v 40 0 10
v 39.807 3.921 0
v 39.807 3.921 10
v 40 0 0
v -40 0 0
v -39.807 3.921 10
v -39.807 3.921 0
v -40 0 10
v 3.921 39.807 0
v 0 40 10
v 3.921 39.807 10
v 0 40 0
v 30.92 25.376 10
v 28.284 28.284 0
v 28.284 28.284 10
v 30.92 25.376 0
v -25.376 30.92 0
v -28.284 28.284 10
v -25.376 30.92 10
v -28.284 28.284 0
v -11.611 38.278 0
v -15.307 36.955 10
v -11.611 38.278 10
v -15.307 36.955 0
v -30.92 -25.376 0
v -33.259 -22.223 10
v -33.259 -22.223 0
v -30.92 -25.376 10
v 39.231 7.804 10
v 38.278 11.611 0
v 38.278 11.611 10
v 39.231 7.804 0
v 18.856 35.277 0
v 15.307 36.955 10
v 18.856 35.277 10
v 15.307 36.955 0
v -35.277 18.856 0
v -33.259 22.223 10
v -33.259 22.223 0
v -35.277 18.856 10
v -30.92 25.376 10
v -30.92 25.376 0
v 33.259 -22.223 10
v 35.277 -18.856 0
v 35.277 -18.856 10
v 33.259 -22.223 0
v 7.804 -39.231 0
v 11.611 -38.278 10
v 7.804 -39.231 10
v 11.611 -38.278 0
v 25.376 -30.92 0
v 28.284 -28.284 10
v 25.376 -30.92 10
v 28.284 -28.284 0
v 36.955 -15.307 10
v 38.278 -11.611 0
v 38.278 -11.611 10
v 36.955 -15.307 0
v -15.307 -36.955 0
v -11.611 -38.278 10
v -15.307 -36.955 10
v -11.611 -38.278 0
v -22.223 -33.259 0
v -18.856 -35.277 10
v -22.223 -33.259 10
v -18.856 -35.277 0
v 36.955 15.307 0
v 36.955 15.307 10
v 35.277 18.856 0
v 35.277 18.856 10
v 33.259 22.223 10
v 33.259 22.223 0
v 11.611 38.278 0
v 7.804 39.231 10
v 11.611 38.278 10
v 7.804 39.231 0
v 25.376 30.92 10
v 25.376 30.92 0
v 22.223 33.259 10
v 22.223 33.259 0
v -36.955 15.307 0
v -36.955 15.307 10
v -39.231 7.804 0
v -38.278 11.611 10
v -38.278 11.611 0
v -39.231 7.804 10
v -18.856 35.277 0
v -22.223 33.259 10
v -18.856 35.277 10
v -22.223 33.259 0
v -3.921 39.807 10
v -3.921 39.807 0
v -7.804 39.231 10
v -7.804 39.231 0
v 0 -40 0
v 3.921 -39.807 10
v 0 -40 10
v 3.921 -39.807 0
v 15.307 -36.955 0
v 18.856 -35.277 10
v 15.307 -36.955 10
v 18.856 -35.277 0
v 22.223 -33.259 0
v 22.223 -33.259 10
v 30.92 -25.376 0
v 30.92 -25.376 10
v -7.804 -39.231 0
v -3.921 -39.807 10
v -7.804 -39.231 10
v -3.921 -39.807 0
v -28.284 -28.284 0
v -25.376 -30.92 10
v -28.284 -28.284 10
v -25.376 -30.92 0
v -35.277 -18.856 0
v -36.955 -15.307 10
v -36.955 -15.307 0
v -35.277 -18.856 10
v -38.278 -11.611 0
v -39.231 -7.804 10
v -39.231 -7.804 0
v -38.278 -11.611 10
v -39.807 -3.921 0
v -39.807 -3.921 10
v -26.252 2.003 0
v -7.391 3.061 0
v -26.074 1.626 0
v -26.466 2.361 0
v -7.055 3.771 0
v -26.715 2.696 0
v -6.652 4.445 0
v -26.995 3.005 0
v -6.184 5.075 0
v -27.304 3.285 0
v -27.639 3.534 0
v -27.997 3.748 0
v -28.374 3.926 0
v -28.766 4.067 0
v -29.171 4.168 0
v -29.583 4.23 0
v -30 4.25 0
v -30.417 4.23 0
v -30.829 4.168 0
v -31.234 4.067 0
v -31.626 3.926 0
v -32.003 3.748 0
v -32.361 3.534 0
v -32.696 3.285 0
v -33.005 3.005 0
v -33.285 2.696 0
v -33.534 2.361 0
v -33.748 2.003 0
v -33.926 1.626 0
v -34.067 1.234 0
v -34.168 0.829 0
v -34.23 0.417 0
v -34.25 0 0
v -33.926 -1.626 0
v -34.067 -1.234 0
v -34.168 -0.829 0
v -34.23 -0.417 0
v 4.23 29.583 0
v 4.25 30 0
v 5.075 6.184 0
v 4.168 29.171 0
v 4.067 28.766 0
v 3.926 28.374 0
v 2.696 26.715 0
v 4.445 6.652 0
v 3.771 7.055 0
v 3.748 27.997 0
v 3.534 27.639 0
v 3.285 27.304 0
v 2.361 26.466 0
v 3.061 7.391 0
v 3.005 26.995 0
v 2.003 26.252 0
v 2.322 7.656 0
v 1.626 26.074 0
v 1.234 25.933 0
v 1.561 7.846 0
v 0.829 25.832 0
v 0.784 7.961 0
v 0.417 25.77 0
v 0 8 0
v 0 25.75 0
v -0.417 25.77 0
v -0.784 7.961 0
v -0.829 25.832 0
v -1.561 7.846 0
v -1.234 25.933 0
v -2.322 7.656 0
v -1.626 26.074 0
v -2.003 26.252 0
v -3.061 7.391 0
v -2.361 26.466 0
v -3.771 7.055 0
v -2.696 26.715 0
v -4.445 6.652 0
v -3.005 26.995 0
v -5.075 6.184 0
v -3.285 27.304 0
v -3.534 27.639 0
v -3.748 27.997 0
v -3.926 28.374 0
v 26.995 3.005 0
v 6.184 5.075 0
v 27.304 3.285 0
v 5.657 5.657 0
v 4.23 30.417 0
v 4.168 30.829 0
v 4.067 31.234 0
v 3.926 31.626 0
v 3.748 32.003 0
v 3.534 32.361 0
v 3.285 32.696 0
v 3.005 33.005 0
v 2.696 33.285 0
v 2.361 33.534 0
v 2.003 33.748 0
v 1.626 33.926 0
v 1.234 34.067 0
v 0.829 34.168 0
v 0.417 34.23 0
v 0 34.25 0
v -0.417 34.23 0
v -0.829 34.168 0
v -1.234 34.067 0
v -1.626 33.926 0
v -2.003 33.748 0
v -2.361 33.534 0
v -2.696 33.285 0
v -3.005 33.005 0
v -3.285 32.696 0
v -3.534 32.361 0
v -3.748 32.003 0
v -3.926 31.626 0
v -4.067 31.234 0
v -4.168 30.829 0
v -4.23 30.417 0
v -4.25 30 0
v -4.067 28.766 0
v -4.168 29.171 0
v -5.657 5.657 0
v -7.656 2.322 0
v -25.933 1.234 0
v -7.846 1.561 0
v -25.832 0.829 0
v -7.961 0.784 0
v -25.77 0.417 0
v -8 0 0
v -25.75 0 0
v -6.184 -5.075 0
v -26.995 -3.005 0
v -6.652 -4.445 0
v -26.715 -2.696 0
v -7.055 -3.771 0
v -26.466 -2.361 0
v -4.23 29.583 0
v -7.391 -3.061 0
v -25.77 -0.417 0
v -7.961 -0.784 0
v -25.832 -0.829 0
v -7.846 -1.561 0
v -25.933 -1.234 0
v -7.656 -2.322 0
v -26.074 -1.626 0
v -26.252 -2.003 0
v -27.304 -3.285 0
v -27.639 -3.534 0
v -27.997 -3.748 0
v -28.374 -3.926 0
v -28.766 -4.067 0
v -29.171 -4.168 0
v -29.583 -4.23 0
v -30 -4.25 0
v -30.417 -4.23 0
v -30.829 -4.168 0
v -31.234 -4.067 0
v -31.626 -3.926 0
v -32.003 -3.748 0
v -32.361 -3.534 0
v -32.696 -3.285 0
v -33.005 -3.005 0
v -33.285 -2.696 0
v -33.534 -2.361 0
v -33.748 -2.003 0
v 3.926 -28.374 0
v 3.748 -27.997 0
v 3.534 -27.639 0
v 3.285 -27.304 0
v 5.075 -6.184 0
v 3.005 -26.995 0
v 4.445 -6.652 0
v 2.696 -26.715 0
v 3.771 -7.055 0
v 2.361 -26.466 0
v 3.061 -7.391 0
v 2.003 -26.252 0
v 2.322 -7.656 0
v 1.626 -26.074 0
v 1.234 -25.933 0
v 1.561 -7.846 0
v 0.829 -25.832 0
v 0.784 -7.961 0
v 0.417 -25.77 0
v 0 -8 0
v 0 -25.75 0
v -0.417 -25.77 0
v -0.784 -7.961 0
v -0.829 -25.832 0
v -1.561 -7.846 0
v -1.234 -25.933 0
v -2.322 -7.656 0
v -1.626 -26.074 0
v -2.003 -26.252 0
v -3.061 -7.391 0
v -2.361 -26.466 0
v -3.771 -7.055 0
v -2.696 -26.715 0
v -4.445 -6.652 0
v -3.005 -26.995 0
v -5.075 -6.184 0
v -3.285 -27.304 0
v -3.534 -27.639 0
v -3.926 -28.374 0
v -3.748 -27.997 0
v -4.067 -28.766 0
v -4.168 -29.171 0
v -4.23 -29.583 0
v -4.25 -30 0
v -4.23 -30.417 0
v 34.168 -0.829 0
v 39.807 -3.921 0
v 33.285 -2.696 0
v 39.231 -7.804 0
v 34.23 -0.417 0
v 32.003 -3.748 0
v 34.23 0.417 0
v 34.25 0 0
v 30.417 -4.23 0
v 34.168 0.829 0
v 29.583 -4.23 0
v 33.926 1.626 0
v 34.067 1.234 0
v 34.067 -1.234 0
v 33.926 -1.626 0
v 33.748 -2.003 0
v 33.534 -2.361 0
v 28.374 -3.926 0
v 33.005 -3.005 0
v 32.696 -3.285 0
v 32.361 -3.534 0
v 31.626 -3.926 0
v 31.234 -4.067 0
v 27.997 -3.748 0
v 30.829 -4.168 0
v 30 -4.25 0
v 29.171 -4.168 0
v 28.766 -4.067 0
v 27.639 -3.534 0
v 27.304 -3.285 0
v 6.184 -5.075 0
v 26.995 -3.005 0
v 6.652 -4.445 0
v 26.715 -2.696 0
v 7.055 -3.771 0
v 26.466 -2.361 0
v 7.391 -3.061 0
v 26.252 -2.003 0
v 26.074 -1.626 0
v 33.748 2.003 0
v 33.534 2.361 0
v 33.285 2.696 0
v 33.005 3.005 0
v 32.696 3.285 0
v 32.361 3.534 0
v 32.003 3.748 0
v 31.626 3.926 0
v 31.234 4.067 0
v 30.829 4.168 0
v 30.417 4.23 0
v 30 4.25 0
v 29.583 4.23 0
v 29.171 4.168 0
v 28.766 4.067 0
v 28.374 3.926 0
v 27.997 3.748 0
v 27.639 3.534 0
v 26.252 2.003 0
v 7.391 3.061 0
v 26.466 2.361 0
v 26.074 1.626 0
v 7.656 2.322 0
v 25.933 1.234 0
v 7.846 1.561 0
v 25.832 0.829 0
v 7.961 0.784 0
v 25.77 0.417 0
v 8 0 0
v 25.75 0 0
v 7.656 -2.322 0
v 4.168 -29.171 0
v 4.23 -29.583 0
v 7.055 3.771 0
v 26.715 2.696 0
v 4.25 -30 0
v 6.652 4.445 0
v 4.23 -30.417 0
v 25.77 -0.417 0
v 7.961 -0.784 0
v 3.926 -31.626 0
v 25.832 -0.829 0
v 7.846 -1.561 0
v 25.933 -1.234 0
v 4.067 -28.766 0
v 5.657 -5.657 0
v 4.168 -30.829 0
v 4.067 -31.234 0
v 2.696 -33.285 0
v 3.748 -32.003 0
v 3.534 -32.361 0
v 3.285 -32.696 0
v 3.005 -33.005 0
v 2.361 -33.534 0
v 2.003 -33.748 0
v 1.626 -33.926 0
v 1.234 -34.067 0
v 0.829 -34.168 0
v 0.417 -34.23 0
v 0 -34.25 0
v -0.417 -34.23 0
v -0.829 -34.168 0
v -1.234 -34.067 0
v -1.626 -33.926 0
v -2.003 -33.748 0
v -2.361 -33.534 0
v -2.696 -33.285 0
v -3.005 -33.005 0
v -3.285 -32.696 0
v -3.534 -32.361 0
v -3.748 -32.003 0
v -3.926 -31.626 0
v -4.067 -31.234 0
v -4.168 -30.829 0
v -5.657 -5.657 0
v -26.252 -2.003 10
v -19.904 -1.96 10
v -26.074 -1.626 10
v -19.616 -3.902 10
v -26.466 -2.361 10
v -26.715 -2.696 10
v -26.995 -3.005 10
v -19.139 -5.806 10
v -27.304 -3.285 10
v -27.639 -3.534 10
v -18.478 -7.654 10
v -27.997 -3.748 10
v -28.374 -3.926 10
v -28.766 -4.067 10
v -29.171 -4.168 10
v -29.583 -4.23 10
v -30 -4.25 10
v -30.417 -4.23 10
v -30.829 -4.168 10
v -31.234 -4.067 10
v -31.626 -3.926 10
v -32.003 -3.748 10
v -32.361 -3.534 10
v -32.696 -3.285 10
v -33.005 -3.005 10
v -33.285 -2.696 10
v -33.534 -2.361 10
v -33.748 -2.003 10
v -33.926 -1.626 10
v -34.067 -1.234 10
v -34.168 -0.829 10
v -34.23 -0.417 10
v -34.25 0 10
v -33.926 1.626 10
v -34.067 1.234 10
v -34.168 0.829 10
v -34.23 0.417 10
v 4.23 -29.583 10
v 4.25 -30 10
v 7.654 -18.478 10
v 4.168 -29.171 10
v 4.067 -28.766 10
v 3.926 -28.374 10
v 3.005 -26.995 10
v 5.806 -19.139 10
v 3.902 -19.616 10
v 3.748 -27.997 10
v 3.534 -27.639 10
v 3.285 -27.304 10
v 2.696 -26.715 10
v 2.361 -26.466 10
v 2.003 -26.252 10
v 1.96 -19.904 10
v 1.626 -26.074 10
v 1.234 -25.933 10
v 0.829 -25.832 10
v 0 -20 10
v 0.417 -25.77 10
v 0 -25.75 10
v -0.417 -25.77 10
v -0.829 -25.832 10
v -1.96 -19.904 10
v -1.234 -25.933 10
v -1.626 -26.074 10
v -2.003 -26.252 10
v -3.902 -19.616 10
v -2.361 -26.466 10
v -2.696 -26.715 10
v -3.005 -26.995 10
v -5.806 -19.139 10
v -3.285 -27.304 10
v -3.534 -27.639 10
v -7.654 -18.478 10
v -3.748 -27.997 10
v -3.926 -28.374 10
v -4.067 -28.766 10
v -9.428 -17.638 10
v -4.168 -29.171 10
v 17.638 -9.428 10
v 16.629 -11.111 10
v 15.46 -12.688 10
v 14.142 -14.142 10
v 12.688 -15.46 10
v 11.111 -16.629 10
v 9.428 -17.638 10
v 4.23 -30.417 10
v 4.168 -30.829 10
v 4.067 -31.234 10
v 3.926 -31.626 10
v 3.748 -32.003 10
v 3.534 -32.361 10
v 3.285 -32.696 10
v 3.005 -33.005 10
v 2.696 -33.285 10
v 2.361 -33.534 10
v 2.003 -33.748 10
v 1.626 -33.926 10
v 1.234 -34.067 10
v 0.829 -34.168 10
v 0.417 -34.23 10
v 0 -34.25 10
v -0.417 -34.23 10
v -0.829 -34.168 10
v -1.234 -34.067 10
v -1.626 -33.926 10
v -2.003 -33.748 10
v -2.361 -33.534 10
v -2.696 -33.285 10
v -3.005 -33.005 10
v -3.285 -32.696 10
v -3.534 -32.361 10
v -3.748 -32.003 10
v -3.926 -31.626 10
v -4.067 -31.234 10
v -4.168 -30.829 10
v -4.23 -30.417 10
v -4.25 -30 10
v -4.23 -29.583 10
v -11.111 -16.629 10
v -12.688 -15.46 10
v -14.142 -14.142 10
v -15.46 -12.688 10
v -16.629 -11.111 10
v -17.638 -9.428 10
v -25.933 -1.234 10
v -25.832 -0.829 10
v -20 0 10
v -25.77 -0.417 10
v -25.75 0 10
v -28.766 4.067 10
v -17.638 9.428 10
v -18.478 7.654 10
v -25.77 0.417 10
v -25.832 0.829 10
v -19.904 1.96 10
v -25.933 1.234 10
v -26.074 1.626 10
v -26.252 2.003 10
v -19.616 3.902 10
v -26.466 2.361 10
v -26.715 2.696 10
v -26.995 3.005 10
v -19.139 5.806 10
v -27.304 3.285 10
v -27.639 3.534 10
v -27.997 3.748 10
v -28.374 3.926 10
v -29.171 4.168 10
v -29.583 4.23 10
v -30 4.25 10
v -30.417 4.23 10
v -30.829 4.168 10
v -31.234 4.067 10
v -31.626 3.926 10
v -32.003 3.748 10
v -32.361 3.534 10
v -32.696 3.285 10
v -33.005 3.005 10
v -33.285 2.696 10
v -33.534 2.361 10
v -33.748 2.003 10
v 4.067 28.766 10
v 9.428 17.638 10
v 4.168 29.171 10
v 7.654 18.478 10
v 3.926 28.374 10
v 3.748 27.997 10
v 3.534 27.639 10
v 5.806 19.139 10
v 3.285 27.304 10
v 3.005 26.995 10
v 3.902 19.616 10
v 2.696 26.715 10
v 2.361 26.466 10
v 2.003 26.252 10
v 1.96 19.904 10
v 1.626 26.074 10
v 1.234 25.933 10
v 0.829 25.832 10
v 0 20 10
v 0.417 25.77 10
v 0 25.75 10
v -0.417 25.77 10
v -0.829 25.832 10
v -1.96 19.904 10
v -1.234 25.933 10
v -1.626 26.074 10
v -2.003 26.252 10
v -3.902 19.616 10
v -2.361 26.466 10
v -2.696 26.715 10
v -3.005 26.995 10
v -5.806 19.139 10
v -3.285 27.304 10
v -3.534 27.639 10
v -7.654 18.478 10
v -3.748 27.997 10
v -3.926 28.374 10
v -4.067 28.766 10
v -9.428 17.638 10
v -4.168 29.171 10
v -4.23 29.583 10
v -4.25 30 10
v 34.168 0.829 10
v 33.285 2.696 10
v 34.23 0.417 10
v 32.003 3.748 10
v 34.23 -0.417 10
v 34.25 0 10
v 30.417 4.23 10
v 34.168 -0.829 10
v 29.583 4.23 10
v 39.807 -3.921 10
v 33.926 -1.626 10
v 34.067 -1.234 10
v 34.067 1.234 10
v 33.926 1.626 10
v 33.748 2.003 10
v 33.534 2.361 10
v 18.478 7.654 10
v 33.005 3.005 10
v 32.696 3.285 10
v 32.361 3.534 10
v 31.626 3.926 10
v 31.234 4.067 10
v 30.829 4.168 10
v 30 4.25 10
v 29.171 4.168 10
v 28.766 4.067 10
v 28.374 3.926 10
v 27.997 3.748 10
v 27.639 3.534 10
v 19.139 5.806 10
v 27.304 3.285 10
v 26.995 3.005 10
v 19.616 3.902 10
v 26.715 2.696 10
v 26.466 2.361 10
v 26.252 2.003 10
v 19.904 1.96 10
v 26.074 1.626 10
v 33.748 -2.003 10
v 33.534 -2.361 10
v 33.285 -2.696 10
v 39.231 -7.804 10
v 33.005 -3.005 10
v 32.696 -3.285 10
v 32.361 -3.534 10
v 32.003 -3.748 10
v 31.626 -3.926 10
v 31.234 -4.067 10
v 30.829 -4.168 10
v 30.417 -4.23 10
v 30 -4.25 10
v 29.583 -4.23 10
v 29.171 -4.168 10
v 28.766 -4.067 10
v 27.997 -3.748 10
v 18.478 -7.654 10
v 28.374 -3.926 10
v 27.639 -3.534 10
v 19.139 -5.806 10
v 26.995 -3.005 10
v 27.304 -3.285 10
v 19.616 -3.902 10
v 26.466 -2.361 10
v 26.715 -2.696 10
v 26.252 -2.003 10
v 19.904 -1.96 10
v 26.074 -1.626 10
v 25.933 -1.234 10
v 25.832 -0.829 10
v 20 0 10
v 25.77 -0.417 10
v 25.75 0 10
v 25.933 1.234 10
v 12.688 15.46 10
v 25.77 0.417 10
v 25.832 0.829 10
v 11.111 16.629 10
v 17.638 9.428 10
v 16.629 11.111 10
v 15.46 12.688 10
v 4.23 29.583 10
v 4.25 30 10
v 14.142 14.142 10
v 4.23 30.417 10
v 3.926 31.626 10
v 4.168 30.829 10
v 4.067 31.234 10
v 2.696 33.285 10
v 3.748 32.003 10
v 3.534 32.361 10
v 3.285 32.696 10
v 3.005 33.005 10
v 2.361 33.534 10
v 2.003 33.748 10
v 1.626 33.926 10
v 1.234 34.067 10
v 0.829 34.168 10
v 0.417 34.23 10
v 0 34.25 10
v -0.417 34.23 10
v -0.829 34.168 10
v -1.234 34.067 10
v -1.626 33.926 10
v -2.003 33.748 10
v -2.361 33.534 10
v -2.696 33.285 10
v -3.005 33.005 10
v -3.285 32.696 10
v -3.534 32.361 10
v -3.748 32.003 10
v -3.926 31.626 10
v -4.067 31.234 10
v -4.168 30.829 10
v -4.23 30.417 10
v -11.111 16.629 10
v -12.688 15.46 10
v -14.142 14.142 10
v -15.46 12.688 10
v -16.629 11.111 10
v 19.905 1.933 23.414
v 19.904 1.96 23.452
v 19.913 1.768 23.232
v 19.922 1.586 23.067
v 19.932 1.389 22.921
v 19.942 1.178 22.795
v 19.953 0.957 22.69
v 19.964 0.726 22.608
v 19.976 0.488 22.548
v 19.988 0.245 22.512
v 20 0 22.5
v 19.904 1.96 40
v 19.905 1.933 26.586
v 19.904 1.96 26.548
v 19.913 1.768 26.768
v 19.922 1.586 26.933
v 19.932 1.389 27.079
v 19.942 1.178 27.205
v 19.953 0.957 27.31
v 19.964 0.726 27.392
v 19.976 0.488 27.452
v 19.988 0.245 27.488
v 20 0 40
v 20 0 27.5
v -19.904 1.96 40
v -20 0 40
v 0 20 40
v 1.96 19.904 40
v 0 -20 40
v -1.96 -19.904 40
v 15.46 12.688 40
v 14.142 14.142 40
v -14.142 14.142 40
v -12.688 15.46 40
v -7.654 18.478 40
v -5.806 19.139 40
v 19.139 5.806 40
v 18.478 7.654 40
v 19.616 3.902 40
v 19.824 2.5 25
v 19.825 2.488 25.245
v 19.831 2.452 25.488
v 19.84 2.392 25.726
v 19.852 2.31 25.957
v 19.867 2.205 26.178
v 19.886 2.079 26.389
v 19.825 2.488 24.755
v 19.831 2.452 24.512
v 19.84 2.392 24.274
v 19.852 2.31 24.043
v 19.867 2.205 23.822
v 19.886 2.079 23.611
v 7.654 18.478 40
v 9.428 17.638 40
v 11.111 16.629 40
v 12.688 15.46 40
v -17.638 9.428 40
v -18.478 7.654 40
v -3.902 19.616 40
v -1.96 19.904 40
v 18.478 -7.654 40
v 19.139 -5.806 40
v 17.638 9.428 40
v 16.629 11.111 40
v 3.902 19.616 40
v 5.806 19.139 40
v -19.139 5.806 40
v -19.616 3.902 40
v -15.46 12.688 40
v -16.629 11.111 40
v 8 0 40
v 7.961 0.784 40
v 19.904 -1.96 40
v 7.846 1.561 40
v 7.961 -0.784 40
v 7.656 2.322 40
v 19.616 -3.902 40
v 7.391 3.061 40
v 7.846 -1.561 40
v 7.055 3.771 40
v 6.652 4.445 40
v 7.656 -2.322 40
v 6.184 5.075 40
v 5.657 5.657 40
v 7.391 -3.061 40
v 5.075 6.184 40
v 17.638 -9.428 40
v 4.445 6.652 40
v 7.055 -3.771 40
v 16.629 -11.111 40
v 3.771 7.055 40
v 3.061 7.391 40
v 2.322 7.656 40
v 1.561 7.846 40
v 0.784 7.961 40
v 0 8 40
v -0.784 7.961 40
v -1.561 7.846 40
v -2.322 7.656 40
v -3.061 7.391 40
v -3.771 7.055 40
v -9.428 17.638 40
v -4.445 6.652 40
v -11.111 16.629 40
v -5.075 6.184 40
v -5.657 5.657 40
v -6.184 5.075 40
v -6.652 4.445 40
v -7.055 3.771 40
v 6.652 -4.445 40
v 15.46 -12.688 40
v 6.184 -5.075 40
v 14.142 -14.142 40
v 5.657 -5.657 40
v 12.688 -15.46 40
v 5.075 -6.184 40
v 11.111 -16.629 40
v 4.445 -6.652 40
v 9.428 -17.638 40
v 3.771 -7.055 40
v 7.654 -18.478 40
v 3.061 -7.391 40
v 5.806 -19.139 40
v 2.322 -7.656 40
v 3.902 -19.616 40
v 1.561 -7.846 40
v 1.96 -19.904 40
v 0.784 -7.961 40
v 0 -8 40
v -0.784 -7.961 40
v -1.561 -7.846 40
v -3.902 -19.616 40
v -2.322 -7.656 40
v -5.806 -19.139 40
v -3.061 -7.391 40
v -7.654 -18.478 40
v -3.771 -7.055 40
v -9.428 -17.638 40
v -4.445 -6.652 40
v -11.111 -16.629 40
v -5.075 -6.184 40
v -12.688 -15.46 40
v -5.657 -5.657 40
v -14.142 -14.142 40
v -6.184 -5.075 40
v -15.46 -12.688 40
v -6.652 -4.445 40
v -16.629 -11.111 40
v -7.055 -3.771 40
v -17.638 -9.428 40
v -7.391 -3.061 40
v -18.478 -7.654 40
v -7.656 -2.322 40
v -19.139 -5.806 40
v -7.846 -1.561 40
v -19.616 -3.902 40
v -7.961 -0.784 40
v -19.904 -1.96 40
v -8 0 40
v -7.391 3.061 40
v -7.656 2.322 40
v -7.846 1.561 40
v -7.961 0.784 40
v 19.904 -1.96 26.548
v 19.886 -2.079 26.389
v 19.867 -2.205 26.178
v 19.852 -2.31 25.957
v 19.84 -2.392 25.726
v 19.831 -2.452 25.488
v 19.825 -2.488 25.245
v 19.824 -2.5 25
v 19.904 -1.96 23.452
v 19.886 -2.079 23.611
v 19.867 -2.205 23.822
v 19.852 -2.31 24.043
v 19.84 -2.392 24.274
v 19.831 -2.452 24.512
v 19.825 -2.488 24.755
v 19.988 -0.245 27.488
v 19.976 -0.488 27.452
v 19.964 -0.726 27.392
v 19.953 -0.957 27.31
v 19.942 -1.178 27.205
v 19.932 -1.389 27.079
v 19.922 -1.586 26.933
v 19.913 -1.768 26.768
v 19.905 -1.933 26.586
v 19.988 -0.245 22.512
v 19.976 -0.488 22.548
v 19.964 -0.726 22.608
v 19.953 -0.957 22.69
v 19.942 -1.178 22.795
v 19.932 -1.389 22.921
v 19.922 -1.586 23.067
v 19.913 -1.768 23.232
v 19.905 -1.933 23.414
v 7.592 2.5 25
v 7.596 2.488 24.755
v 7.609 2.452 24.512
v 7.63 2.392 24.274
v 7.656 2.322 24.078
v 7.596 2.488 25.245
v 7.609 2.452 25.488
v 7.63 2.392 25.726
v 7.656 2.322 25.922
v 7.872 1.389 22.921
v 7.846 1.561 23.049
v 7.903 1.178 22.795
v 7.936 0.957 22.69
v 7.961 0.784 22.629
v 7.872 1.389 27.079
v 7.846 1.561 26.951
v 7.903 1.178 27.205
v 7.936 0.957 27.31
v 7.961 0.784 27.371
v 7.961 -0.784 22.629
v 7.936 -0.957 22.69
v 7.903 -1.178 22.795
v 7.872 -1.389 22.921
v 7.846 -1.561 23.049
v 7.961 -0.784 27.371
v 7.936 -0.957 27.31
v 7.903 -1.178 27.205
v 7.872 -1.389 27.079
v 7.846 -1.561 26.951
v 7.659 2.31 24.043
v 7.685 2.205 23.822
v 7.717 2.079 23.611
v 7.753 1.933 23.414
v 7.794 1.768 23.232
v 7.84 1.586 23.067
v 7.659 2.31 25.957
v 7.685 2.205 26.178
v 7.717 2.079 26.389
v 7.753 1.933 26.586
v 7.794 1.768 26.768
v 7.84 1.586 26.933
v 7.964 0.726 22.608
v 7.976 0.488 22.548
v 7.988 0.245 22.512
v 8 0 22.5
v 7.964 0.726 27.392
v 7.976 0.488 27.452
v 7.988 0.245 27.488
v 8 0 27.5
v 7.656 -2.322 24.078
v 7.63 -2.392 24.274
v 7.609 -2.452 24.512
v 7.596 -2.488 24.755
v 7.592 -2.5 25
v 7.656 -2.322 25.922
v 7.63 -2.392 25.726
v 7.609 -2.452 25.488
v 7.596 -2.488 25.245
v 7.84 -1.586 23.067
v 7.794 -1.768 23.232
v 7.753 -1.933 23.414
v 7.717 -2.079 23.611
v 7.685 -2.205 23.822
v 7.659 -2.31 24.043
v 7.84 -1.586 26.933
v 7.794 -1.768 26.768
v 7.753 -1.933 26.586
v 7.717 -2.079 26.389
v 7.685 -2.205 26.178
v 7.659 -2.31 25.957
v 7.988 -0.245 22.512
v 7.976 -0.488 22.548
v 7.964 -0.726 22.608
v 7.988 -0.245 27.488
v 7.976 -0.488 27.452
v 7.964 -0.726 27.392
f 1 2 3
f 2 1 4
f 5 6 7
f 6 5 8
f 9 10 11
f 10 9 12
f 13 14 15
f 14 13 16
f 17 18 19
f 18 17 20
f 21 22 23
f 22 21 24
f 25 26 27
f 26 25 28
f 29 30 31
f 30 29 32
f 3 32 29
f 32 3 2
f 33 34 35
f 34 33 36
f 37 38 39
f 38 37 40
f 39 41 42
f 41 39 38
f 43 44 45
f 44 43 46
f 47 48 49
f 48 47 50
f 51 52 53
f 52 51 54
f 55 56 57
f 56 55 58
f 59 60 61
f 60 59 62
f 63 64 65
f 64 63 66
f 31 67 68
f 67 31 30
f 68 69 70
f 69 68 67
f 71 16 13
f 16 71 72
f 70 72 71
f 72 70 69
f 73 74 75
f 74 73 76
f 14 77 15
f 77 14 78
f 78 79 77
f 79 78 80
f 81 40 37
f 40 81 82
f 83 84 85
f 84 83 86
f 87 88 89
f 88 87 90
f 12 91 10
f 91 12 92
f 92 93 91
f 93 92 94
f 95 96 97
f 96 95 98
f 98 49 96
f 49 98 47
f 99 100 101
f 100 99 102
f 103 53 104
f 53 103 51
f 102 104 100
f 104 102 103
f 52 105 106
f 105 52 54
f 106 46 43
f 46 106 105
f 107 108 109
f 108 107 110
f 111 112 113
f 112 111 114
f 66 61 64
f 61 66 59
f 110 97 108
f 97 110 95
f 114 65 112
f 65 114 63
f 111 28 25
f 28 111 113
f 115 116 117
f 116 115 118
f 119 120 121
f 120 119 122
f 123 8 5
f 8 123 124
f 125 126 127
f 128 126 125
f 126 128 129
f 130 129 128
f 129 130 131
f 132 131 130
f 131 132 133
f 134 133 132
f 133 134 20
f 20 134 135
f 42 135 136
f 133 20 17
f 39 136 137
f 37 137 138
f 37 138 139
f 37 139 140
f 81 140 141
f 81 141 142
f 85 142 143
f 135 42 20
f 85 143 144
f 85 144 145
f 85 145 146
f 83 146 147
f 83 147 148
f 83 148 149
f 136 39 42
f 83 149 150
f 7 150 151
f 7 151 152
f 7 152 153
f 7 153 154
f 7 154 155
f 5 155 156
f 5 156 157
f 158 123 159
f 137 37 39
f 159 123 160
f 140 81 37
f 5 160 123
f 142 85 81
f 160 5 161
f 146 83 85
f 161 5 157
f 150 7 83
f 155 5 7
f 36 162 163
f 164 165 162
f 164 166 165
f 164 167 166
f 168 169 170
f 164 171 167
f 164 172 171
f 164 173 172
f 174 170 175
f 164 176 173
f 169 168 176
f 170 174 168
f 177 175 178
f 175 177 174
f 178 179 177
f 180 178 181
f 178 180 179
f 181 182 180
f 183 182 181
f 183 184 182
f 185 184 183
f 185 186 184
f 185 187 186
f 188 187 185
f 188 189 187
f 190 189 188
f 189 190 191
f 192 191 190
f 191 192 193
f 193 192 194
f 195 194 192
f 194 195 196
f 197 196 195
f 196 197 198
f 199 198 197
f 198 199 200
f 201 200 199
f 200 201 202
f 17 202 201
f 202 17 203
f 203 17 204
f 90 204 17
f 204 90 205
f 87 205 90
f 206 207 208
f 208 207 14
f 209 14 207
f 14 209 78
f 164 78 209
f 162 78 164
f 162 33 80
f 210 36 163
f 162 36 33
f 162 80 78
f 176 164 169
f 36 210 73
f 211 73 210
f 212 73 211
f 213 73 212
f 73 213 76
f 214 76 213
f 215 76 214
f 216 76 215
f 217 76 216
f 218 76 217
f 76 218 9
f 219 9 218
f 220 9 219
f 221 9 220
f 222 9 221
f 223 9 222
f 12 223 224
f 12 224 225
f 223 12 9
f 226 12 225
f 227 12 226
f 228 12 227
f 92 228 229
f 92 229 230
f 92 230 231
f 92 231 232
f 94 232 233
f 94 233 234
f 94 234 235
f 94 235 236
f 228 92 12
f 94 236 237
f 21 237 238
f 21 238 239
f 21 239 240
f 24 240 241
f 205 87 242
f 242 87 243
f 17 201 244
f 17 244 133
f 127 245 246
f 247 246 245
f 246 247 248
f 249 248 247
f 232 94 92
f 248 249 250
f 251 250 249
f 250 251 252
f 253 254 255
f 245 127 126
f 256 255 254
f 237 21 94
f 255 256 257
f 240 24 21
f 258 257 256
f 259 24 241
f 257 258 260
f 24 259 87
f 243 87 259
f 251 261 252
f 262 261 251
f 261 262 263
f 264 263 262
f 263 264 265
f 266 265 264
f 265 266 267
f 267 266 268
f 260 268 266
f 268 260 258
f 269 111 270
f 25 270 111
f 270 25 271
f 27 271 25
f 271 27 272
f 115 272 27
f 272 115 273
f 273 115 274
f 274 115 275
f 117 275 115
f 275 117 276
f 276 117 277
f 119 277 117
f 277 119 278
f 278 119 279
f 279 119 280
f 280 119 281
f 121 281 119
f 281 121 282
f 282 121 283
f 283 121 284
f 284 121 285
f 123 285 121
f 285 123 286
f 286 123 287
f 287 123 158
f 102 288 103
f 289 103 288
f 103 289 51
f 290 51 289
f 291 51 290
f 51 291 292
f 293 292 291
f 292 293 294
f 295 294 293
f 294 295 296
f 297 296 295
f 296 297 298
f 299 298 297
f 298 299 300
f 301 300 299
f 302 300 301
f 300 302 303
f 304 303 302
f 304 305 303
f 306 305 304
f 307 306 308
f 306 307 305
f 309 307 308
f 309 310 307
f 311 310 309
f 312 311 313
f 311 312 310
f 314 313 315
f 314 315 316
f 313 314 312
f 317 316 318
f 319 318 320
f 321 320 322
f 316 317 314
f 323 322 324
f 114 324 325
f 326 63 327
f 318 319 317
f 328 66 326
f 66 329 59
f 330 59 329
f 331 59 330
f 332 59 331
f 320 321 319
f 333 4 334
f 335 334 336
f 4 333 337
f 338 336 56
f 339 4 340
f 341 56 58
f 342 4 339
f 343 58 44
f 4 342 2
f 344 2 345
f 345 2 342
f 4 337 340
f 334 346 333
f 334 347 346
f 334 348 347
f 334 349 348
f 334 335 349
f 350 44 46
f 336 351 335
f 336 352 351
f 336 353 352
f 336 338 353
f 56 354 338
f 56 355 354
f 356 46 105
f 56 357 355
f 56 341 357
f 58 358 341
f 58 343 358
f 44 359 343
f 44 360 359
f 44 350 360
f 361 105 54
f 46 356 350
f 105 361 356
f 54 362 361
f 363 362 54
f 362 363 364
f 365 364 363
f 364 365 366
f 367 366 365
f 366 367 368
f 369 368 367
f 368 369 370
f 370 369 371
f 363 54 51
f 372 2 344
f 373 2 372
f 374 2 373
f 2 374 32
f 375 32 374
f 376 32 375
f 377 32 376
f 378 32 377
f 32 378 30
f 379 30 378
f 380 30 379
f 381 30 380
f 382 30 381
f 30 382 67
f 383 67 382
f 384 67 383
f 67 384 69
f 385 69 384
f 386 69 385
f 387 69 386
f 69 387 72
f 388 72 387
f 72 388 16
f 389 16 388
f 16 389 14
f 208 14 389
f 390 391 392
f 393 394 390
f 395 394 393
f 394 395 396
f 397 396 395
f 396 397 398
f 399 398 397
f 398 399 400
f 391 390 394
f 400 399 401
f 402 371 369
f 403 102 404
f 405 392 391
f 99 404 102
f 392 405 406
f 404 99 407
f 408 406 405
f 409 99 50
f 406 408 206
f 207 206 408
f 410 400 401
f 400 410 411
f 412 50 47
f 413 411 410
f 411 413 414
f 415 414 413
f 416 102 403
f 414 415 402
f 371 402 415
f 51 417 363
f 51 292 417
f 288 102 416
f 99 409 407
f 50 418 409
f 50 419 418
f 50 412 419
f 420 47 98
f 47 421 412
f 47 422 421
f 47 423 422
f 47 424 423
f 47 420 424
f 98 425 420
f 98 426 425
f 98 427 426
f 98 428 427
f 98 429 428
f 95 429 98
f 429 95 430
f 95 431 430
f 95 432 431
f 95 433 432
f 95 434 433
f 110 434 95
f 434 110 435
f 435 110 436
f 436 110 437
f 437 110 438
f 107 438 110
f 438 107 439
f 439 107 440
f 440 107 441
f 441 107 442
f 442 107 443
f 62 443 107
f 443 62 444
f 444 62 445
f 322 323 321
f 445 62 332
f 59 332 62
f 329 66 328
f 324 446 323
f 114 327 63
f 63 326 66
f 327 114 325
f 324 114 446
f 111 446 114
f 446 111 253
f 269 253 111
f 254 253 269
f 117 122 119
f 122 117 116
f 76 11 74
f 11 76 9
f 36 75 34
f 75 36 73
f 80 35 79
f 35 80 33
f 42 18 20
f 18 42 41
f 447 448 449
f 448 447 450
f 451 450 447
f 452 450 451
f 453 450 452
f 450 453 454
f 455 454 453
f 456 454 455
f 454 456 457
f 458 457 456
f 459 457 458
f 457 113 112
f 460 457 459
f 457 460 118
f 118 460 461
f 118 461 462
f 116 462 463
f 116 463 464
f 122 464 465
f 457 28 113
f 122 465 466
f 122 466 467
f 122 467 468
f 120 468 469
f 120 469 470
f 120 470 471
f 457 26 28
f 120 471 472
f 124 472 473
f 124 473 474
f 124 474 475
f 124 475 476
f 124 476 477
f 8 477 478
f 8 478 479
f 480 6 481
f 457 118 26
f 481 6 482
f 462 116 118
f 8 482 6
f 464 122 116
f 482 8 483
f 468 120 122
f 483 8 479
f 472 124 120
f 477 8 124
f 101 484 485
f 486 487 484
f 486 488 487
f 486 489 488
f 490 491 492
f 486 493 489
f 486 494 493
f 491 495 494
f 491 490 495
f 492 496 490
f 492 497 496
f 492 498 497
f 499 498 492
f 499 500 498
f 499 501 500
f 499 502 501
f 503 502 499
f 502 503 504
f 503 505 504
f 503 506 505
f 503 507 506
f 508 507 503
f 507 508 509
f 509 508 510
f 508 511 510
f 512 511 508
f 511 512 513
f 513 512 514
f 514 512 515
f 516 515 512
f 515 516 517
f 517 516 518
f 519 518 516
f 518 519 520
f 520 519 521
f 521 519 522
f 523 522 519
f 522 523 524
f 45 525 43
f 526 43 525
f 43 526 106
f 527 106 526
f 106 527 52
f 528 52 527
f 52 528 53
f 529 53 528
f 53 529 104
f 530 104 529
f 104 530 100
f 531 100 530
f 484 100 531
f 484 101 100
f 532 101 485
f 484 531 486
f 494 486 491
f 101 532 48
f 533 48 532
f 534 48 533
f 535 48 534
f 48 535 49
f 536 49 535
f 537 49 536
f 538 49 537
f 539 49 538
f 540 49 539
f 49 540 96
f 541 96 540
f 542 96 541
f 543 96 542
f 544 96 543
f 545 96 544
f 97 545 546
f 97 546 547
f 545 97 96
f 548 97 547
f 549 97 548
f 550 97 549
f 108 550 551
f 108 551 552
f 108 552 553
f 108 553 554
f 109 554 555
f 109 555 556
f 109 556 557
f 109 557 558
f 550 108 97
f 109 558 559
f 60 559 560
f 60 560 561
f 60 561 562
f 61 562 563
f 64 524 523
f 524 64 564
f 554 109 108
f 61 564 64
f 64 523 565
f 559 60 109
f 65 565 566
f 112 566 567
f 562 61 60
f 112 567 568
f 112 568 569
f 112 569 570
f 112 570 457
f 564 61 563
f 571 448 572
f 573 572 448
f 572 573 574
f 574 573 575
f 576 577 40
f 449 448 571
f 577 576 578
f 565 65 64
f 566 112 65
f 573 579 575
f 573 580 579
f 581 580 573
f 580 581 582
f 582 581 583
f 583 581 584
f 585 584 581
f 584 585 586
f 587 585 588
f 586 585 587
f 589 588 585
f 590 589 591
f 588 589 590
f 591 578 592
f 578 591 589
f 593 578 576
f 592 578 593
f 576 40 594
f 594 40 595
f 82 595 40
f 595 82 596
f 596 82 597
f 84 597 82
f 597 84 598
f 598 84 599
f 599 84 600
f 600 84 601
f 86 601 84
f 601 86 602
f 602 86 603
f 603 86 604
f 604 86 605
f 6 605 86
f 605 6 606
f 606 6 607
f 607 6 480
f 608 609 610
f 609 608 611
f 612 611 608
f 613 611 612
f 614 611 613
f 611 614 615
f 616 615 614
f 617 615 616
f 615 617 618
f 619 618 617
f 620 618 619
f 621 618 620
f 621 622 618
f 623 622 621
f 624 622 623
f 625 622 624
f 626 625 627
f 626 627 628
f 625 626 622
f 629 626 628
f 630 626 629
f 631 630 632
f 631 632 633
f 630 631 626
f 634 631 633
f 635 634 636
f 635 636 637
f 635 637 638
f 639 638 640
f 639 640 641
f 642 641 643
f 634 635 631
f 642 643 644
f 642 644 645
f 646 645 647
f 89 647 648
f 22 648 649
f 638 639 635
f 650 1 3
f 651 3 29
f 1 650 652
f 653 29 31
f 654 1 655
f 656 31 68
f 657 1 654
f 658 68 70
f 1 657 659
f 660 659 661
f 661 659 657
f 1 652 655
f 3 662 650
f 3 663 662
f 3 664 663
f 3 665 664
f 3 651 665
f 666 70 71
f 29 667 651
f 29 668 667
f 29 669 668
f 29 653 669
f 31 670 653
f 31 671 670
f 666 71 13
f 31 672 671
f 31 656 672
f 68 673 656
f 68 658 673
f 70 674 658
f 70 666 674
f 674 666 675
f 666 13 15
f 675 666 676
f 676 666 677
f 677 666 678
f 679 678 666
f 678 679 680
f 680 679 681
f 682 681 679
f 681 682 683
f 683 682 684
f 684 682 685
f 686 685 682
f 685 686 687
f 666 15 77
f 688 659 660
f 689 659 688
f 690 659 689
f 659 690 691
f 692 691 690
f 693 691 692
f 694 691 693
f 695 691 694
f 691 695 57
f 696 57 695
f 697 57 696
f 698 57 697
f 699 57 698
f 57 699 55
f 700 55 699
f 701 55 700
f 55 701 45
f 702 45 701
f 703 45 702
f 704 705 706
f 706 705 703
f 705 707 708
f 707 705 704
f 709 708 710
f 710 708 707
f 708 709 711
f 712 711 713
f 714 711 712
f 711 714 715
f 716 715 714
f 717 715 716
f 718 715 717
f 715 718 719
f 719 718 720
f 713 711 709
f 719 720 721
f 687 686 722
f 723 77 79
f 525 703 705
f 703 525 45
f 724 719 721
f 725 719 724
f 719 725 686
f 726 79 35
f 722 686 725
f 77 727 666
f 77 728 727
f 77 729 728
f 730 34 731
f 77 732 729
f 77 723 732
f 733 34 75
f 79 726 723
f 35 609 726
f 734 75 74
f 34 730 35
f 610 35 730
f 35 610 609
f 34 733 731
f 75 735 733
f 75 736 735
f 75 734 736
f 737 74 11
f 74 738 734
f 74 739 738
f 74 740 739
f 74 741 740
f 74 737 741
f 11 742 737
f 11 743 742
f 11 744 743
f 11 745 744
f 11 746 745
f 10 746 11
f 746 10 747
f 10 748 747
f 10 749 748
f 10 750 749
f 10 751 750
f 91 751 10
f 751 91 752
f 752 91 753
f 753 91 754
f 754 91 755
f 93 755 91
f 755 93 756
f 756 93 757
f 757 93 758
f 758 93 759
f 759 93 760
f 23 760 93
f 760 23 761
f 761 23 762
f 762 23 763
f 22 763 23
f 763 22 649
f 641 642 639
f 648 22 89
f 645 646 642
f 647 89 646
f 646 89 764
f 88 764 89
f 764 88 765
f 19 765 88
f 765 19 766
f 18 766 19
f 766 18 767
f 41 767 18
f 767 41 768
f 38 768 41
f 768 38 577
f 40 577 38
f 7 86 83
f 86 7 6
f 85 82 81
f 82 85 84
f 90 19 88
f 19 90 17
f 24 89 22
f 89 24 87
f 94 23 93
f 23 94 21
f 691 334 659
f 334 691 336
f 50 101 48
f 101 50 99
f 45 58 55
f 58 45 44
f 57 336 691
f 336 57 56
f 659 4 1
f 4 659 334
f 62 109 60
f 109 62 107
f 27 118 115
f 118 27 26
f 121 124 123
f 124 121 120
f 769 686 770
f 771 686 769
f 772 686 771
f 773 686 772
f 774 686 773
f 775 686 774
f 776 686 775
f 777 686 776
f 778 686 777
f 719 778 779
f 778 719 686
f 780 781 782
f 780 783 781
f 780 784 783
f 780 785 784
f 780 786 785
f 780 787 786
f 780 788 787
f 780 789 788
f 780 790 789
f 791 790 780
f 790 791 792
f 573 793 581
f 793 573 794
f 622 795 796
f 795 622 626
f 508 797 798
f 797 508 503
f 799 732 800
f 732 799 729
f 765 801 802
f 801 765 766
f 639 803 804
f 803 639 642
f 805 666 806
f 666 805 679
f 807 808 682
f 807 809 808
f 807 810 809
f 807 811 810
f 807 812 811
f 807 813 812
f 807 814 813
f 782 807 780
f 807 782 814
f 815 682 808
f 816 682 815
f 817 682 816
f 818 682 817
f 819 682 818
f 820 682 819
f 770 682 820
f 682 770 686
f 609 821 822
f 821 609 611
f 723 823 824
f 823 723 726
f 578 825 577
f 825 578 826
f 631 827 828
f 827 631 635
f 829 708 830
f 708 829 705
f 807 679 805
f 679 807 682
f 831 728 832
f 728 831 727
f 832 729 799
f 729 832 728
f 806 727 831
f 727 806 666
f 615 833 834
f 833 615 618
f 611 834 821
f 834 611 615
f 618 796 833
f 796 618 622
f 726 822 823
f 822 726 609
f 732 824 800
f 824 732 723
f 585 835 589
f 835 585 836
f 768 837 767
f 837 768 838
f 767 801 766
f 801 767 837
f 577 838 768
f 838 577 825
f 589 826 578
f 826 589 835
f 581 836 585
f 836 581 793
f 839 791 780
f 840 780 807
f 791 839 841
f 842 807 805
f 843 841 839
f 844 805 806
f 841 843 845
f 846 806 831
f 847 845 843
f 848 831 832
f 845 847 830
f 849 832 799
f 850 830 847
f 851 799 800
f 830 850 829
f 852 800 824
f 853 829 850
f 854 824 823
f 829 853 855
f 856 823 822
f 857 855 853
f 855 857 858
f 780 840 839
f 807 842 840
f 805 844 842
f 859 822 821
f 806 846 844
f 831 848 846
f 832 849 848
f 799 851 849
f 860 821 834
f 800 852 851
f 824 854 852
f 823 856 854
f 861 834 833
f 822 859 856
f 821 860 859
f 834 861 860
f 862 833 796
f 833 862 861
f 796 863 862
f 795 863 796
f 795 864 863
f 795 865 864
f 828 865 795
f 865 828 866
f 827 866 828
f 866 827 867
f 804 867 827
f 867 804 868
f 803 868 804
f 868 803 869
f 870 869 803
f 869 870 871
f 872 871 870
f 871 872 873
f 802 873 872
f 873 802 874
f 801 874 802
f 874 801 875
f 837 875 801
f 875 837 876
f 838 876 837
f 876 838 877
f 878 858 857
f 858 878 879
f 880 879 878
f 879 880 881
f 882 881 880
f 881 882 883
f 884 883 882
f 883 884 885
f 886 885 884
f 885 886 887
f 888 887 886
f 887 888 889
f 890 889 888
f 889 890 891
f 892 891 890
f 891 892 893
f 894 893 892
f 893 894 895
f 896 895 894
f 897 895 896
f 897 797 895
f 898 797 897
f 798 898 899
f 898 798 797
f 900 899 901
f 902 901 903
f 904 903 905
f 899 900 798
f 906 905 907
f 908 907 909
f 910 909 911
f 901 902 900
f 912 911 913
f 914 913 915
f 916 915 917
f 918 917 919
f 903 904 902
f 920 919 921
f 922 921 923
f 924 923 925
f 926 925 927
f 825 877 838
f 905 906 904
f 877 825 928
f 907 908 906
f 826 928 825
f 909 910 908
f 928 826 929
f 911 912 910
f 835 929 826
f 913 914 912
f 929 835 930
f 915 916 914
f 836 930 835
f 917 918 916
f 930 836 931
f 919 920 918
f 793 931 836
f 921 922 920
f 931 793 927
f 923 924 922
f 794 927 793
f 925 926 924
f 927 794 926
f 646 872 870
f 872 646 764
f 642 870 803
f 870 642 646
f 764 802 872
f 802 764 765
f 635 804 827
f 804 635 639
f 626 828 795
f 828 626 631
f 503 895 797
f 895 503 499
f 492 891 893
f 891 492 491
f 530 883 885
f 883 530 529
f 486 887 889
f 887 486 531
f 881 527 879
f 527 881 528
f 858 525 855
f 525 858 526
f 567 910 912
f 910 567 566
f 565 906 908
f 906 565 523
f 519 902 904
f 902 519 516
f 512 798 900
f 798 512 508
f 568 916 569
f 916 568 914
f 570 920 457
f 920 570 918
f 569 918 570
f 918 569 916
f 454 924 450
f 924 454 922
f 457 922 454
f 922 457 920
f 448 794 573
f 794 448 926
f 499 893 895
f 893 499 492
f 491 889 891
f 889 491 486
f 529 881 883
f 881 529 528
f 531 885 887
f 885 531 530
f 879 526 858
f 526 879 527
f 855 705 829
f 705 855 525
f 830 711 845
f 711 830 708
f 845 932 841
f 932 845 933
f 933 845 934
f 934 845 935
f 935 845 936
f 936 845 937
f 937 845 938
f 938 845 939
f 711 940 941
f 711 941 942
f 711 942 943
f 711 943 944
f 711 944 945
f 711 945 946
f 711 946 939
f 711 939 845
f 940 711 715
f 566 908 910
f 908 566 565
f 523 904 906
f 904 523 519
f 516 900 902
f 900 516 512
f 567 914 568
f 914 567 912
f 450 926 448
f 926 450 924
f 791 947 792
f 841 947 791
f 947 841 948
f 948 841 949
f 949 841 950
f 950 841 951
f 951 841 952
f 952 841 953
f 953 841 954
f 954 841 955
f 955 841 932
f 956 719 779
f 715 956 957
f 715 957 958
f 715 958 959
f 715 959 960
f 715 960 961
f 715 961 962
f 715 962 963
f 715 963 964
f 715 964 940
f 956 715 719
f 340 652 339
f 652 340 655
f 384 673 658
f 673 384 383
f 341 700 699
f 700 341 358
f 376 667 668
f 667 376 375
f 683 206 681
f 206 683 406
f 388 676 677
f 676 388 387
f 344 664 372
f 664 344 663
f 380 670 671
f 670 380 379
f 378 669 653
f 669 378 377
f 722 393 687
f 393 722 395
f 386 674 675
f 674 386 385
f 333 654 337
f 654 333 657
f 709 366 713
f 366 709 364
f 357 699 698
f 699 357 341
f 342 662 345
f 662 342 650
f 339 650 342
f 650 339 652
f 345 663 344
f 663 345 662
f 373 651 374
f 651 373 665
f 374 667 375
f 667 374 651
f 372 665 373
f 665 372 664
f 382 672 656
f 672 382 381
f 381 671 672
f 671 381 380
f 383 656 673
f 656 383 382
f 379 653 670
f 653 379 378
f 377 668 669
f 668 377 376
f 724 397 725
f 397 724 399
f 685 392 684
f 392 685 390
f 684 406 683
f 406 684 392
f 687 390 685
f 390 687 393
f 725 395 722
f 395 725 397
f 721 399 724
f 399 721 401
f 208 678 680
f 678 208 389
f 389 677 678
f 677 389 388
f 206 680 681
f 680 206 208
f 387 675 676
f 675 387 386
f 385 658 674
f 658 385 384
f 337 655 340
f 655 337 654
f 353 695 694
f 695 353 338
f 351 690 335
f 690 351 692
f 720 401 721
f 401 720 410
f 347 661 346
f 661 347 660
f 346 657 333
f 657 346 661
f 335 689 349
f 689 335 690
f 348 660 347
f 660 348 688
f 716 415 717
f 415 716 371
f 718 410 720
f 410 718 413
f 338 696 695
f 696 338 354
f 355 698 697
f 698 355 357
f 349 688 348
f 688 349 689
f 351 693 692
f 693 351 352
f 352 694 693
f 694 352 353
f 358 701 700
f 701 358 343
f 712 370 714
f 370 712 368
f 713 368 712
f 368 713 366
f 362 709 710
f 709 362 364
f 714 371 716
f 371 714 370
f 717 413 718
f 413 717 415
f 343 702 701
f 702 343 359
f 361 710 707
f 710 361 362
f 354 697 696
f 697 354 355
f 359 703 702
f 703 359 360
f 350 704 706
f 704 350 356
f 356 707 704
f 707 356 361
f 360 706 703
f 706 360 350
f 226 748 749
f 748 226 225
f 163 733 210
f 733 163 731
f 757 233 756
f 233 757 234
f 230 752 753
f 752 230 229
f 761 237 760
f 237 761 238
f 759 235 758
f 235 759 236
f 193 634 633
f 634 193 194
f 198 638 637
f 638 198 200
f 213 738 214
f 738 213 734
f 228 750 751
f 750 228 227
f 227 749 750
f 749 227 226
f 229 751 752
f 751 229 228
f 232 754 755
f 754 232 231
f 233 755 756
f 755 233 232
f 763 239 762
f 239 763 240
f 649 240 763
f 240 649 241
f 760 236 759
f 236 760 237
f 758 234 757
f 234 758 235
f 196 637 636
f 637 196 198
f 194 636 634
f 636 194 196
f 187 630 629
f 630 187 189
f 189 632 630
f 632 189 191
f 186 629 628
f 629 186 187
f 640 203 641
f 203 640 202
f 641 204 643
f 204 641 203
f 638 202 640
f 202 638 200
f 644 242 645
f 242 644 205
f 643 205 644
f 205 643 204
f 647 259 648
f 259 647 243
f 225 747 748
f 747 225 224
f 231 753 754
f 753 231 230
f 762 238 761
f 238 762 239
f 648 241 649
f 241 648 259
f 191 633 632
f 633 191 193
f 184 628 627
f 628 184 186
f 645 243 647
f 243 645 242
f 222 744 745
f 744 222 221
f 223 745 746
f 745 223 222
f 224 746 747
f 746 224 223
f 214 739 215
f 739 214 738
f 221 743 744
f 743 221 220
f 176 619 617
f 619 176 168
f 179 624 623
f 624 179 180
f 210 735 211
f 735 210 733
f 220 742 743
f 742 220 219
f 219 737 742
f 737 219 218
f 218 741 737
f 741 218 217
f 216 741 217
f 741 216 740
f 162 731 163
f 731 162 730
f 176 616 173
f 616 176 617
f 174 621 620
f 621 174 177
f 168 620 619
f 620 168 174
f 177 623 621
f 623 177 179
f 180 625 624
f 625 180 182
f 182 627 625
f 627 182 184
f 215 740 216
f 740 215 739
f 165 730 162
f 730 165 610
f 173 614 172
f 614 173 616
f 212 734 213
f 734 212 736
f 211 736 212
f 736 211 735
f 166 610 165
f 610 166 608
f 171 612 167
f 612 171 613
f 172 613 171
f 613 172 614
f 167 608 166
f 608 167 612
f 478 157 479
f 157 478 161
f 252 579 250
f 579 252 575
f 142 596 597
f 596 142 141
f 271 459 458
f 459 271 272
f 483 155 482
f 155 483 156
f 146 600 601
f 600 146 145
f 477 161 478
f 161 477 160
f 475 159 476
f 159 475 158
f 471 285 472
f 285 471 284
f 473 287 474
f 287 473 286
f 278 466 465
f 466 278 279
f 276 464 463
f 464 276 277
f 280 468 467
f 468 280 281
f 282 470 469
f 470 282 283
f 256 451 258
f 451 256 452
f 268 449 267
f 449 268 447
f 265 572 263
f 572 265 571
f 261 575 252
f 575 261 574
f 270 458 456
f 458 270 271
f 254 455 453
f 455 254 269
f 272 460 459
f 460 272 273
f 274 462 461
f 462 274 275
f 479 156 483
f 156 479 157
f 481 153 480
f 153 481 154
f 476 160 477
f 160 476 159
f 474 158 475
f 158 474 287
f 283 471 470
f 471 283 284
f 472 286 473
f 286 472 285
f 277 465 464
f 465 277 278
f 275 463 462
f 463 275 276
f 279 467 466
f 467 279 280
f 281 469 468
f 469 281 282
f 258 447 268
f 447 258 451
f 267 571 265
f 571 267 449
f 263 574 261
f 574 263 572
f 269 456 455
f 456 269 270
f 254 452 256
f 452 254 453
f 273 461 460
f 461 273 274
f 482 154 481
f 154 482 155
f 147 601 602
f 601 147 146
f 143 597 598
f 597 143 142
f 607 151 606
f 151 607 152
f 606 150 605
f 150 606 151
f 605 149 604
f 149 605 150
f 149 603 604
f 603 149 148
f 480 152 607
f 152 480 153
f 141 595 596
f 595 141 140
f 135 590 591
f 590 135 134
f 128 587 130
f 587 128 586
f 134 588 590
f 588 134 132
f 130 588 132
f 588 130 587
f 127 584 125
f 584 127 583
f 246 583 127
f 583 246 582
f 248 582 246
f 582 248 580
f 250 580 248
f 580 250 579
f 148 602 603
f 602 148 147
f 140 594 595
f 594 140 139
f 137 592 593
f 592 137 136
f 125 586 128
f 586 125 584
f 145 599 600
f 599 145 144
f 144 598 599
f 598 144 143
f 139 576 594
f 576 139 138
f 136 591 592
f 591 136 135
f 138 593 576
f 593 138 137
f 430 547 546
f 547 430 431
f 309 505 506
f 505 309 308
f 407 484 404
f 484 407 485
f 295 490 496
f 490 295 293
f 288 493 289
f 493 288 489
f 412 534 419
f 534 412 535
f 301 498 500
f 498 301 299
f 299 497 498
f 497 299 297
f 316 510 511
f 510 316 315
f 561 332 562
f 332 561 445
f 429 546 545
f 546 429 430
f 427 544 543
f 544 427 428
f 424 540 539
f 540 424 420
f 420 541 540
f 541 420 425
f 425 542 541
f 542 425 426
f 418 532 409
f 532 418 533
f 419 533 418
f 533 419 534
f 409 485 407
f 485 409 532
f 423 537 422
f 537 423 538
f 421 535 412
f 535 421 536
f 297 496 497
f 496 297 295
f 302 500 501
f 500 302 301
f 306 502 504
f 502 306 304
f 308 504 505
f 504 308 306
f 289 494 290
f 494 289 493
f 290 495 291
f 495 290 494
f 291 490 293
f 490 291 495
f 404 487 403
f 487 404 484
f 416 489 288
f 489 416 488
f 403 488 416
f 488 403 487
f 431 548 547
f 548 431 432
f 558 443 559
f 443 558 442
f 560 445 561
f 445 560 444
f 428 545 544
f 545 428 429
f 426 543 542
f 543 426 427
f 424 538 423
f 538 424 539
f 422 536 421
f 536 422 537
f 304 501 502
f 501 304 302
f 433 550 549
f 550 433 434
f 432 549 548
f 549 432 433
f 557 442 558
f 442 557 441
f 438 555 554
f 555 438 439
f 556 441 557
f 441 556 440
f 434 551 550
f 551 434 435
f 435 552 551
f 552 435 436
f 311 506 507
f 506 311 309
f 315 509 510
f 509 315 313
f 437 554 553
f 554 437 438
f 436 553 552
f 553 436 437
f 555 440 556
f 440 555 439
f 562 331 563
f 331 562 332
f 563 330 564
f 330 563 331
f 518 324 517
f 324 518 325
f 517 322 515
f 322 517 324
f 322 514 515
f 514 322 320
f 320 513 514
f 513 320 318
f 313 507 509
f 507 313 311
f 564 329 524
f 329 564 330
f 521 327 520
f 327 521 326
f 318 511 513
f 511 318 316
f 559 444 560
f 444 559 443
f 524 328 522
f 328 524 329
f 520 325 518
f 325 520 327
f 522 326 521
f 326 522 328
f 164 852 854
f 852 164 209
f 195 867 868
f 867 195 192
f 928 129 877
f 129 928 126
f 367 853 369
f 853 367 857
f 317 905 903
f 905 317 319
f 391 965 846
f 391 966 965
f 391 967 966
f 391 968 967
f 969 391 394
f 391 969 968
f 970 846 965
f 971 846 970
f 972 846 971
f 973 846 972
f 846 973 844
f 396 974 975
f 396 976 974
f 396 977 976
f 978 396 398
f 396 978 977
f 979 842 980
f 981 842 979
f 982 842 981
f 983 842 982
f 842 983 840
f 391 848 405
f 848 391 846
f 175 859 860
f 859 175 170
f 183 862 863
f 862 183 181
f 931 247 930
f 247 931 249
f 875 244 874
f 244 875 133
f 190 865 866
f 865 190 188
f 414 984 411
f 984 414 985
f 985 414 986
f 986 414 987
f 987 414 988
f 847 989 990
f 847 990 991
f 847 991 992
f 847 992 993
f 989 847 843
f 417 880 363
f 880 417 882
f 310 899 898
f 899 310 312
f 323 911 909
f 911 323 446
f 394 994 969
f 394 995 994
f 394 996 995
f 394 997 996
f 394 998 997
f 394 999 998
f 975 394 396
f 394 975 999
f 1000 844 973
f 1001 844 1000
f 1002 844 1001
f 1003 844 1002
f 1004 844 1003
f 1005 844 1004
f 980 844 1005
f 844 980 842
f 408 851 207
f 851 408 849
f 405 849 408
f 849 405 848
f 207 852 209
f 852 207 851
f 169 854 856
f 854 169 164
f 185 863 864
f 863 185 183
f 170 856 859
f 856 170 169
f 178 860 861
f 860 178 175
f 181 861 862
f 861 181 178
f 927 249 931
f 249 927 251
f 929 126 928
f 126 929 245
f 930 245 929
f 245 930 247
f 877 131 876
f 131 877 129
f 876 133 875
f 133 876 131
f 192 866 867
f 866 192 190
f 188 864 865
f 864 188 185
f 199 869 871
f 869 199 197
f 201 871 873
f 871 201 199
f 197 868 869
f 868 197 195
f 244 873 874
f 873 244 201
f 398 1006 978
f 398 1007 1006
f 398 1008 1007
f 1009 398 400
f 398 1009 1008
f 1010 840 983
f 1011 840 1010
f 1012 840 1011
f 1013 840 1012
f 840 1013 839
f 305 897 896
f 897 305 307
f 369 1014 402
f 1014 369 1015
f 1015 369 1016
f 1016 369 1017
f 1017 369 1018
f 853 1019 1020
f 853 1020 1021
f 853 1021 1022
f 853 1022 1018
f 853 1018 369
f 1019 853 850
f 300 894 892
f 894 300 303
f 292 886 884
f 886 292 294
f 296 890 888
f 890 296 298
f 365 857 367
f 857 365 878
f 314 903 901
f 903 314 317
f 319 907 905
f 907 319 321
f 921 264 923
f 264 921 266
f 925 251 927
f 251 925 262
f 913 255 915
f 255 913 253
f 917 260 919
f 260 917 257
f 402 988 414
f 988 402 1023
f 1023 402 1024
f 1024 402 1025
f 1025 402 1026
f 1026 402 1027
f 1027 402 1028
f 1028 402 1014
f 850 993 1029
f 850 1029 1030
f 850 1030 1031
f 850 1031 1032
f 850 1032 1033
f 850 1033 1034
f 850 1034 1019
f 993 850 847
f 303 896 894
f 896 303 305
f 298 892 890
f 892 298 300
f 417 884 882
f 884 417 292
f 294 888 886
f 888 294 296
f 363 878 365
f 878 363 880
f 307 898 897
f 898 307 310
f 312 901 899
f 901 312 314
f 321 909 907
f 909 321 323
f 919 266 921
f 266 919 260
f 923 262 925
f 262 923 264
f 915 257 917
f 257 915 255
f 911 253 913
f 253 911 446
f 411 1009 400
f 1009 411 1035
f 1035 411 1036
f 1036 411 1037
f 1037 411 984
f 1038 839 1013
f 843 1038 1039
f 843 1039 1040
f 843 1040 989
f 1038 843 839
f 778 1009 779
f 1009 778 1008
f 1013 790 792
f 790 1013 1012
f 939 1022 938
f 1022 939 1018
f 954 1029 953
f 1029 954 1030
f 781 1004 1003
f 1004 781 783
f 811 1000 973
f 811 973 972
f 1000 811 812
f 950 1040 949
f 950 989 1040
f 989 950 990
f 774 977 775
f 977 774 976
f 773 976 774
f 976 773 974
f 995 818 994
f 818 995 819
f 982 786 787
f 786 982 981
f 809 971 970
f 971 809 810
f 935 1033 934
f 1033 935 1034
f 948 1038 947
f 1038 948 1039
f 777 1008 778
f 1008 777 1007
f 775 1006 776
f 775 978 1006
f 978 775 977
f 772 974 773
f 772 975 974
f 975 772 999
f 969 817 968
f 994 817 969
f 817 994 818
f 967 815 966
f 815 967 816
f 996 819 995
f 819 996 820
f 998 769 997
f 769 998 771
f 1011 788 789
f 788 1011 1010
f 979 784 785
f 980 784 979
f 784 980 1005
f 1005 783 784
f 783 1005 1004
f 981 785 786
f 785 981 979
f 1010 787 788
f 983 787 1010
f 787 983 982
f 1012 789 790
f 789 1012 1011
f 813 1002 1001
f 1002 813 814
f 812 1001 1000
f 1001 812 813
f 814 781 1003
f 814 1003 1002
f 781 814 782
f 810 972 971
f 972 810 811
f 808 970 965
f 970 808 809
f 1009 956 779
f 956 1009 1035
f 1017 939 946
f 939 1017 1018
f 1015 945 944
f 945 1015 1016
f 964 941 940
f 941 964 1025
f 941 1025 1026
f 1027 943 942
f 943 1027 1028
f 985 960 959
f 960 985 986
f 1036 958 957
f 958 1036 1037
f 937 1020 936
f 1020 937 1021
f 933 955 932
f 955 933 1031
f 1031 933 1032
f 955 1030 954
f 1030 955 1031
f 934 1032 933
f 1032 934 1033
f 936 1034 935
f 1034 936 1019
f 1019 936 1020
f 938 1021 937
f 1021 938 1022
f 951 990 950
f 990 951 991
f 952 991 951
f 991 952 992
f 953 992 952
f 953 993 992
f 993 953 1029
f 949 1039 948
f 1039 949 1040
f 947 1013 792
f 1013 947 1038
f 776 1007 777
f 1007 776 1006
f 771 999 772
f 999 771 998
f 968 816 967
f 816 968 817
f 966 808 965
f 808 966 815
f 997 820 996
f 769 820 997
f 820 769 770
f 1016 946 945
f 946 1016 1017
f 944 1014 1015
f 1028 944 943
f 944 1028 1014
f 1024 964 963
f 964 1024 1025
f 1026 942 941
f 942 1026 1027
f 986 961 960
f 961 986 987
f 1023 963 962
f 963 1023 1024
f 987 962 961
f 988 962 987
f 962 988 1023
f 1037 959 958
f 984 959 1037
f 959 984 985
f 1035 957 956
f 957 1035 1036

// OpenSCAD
// Original MechIntel educational model. CC0-1.0. Units: mm.
// Not a standardized or load-rated component.
$fn=96;
flange=80; flange_thickness=10; hub=40; hub_length=30; bore=16; bolt_circle=60;
$fn=64;
difference(){
 union(){cylinder(d=flange,h=flange_thickness);translate([0,0,flange_thickness]) cylinder(d=hub,h=hub_length);}
 translate([0,0,-1]) cylinder(d=bore,h=flange_thickness+hub_length+2);
 for(a=[0,90,180,270]) rotate([0,0,a]) translate([bolt_circle/2,0,-1]) cylinder(d=8.5,h=flange_thickness+2);
 translate([0,0,25]) rotate([0,90,0]) cylinder(d=5,h=hub/2+1);
}
